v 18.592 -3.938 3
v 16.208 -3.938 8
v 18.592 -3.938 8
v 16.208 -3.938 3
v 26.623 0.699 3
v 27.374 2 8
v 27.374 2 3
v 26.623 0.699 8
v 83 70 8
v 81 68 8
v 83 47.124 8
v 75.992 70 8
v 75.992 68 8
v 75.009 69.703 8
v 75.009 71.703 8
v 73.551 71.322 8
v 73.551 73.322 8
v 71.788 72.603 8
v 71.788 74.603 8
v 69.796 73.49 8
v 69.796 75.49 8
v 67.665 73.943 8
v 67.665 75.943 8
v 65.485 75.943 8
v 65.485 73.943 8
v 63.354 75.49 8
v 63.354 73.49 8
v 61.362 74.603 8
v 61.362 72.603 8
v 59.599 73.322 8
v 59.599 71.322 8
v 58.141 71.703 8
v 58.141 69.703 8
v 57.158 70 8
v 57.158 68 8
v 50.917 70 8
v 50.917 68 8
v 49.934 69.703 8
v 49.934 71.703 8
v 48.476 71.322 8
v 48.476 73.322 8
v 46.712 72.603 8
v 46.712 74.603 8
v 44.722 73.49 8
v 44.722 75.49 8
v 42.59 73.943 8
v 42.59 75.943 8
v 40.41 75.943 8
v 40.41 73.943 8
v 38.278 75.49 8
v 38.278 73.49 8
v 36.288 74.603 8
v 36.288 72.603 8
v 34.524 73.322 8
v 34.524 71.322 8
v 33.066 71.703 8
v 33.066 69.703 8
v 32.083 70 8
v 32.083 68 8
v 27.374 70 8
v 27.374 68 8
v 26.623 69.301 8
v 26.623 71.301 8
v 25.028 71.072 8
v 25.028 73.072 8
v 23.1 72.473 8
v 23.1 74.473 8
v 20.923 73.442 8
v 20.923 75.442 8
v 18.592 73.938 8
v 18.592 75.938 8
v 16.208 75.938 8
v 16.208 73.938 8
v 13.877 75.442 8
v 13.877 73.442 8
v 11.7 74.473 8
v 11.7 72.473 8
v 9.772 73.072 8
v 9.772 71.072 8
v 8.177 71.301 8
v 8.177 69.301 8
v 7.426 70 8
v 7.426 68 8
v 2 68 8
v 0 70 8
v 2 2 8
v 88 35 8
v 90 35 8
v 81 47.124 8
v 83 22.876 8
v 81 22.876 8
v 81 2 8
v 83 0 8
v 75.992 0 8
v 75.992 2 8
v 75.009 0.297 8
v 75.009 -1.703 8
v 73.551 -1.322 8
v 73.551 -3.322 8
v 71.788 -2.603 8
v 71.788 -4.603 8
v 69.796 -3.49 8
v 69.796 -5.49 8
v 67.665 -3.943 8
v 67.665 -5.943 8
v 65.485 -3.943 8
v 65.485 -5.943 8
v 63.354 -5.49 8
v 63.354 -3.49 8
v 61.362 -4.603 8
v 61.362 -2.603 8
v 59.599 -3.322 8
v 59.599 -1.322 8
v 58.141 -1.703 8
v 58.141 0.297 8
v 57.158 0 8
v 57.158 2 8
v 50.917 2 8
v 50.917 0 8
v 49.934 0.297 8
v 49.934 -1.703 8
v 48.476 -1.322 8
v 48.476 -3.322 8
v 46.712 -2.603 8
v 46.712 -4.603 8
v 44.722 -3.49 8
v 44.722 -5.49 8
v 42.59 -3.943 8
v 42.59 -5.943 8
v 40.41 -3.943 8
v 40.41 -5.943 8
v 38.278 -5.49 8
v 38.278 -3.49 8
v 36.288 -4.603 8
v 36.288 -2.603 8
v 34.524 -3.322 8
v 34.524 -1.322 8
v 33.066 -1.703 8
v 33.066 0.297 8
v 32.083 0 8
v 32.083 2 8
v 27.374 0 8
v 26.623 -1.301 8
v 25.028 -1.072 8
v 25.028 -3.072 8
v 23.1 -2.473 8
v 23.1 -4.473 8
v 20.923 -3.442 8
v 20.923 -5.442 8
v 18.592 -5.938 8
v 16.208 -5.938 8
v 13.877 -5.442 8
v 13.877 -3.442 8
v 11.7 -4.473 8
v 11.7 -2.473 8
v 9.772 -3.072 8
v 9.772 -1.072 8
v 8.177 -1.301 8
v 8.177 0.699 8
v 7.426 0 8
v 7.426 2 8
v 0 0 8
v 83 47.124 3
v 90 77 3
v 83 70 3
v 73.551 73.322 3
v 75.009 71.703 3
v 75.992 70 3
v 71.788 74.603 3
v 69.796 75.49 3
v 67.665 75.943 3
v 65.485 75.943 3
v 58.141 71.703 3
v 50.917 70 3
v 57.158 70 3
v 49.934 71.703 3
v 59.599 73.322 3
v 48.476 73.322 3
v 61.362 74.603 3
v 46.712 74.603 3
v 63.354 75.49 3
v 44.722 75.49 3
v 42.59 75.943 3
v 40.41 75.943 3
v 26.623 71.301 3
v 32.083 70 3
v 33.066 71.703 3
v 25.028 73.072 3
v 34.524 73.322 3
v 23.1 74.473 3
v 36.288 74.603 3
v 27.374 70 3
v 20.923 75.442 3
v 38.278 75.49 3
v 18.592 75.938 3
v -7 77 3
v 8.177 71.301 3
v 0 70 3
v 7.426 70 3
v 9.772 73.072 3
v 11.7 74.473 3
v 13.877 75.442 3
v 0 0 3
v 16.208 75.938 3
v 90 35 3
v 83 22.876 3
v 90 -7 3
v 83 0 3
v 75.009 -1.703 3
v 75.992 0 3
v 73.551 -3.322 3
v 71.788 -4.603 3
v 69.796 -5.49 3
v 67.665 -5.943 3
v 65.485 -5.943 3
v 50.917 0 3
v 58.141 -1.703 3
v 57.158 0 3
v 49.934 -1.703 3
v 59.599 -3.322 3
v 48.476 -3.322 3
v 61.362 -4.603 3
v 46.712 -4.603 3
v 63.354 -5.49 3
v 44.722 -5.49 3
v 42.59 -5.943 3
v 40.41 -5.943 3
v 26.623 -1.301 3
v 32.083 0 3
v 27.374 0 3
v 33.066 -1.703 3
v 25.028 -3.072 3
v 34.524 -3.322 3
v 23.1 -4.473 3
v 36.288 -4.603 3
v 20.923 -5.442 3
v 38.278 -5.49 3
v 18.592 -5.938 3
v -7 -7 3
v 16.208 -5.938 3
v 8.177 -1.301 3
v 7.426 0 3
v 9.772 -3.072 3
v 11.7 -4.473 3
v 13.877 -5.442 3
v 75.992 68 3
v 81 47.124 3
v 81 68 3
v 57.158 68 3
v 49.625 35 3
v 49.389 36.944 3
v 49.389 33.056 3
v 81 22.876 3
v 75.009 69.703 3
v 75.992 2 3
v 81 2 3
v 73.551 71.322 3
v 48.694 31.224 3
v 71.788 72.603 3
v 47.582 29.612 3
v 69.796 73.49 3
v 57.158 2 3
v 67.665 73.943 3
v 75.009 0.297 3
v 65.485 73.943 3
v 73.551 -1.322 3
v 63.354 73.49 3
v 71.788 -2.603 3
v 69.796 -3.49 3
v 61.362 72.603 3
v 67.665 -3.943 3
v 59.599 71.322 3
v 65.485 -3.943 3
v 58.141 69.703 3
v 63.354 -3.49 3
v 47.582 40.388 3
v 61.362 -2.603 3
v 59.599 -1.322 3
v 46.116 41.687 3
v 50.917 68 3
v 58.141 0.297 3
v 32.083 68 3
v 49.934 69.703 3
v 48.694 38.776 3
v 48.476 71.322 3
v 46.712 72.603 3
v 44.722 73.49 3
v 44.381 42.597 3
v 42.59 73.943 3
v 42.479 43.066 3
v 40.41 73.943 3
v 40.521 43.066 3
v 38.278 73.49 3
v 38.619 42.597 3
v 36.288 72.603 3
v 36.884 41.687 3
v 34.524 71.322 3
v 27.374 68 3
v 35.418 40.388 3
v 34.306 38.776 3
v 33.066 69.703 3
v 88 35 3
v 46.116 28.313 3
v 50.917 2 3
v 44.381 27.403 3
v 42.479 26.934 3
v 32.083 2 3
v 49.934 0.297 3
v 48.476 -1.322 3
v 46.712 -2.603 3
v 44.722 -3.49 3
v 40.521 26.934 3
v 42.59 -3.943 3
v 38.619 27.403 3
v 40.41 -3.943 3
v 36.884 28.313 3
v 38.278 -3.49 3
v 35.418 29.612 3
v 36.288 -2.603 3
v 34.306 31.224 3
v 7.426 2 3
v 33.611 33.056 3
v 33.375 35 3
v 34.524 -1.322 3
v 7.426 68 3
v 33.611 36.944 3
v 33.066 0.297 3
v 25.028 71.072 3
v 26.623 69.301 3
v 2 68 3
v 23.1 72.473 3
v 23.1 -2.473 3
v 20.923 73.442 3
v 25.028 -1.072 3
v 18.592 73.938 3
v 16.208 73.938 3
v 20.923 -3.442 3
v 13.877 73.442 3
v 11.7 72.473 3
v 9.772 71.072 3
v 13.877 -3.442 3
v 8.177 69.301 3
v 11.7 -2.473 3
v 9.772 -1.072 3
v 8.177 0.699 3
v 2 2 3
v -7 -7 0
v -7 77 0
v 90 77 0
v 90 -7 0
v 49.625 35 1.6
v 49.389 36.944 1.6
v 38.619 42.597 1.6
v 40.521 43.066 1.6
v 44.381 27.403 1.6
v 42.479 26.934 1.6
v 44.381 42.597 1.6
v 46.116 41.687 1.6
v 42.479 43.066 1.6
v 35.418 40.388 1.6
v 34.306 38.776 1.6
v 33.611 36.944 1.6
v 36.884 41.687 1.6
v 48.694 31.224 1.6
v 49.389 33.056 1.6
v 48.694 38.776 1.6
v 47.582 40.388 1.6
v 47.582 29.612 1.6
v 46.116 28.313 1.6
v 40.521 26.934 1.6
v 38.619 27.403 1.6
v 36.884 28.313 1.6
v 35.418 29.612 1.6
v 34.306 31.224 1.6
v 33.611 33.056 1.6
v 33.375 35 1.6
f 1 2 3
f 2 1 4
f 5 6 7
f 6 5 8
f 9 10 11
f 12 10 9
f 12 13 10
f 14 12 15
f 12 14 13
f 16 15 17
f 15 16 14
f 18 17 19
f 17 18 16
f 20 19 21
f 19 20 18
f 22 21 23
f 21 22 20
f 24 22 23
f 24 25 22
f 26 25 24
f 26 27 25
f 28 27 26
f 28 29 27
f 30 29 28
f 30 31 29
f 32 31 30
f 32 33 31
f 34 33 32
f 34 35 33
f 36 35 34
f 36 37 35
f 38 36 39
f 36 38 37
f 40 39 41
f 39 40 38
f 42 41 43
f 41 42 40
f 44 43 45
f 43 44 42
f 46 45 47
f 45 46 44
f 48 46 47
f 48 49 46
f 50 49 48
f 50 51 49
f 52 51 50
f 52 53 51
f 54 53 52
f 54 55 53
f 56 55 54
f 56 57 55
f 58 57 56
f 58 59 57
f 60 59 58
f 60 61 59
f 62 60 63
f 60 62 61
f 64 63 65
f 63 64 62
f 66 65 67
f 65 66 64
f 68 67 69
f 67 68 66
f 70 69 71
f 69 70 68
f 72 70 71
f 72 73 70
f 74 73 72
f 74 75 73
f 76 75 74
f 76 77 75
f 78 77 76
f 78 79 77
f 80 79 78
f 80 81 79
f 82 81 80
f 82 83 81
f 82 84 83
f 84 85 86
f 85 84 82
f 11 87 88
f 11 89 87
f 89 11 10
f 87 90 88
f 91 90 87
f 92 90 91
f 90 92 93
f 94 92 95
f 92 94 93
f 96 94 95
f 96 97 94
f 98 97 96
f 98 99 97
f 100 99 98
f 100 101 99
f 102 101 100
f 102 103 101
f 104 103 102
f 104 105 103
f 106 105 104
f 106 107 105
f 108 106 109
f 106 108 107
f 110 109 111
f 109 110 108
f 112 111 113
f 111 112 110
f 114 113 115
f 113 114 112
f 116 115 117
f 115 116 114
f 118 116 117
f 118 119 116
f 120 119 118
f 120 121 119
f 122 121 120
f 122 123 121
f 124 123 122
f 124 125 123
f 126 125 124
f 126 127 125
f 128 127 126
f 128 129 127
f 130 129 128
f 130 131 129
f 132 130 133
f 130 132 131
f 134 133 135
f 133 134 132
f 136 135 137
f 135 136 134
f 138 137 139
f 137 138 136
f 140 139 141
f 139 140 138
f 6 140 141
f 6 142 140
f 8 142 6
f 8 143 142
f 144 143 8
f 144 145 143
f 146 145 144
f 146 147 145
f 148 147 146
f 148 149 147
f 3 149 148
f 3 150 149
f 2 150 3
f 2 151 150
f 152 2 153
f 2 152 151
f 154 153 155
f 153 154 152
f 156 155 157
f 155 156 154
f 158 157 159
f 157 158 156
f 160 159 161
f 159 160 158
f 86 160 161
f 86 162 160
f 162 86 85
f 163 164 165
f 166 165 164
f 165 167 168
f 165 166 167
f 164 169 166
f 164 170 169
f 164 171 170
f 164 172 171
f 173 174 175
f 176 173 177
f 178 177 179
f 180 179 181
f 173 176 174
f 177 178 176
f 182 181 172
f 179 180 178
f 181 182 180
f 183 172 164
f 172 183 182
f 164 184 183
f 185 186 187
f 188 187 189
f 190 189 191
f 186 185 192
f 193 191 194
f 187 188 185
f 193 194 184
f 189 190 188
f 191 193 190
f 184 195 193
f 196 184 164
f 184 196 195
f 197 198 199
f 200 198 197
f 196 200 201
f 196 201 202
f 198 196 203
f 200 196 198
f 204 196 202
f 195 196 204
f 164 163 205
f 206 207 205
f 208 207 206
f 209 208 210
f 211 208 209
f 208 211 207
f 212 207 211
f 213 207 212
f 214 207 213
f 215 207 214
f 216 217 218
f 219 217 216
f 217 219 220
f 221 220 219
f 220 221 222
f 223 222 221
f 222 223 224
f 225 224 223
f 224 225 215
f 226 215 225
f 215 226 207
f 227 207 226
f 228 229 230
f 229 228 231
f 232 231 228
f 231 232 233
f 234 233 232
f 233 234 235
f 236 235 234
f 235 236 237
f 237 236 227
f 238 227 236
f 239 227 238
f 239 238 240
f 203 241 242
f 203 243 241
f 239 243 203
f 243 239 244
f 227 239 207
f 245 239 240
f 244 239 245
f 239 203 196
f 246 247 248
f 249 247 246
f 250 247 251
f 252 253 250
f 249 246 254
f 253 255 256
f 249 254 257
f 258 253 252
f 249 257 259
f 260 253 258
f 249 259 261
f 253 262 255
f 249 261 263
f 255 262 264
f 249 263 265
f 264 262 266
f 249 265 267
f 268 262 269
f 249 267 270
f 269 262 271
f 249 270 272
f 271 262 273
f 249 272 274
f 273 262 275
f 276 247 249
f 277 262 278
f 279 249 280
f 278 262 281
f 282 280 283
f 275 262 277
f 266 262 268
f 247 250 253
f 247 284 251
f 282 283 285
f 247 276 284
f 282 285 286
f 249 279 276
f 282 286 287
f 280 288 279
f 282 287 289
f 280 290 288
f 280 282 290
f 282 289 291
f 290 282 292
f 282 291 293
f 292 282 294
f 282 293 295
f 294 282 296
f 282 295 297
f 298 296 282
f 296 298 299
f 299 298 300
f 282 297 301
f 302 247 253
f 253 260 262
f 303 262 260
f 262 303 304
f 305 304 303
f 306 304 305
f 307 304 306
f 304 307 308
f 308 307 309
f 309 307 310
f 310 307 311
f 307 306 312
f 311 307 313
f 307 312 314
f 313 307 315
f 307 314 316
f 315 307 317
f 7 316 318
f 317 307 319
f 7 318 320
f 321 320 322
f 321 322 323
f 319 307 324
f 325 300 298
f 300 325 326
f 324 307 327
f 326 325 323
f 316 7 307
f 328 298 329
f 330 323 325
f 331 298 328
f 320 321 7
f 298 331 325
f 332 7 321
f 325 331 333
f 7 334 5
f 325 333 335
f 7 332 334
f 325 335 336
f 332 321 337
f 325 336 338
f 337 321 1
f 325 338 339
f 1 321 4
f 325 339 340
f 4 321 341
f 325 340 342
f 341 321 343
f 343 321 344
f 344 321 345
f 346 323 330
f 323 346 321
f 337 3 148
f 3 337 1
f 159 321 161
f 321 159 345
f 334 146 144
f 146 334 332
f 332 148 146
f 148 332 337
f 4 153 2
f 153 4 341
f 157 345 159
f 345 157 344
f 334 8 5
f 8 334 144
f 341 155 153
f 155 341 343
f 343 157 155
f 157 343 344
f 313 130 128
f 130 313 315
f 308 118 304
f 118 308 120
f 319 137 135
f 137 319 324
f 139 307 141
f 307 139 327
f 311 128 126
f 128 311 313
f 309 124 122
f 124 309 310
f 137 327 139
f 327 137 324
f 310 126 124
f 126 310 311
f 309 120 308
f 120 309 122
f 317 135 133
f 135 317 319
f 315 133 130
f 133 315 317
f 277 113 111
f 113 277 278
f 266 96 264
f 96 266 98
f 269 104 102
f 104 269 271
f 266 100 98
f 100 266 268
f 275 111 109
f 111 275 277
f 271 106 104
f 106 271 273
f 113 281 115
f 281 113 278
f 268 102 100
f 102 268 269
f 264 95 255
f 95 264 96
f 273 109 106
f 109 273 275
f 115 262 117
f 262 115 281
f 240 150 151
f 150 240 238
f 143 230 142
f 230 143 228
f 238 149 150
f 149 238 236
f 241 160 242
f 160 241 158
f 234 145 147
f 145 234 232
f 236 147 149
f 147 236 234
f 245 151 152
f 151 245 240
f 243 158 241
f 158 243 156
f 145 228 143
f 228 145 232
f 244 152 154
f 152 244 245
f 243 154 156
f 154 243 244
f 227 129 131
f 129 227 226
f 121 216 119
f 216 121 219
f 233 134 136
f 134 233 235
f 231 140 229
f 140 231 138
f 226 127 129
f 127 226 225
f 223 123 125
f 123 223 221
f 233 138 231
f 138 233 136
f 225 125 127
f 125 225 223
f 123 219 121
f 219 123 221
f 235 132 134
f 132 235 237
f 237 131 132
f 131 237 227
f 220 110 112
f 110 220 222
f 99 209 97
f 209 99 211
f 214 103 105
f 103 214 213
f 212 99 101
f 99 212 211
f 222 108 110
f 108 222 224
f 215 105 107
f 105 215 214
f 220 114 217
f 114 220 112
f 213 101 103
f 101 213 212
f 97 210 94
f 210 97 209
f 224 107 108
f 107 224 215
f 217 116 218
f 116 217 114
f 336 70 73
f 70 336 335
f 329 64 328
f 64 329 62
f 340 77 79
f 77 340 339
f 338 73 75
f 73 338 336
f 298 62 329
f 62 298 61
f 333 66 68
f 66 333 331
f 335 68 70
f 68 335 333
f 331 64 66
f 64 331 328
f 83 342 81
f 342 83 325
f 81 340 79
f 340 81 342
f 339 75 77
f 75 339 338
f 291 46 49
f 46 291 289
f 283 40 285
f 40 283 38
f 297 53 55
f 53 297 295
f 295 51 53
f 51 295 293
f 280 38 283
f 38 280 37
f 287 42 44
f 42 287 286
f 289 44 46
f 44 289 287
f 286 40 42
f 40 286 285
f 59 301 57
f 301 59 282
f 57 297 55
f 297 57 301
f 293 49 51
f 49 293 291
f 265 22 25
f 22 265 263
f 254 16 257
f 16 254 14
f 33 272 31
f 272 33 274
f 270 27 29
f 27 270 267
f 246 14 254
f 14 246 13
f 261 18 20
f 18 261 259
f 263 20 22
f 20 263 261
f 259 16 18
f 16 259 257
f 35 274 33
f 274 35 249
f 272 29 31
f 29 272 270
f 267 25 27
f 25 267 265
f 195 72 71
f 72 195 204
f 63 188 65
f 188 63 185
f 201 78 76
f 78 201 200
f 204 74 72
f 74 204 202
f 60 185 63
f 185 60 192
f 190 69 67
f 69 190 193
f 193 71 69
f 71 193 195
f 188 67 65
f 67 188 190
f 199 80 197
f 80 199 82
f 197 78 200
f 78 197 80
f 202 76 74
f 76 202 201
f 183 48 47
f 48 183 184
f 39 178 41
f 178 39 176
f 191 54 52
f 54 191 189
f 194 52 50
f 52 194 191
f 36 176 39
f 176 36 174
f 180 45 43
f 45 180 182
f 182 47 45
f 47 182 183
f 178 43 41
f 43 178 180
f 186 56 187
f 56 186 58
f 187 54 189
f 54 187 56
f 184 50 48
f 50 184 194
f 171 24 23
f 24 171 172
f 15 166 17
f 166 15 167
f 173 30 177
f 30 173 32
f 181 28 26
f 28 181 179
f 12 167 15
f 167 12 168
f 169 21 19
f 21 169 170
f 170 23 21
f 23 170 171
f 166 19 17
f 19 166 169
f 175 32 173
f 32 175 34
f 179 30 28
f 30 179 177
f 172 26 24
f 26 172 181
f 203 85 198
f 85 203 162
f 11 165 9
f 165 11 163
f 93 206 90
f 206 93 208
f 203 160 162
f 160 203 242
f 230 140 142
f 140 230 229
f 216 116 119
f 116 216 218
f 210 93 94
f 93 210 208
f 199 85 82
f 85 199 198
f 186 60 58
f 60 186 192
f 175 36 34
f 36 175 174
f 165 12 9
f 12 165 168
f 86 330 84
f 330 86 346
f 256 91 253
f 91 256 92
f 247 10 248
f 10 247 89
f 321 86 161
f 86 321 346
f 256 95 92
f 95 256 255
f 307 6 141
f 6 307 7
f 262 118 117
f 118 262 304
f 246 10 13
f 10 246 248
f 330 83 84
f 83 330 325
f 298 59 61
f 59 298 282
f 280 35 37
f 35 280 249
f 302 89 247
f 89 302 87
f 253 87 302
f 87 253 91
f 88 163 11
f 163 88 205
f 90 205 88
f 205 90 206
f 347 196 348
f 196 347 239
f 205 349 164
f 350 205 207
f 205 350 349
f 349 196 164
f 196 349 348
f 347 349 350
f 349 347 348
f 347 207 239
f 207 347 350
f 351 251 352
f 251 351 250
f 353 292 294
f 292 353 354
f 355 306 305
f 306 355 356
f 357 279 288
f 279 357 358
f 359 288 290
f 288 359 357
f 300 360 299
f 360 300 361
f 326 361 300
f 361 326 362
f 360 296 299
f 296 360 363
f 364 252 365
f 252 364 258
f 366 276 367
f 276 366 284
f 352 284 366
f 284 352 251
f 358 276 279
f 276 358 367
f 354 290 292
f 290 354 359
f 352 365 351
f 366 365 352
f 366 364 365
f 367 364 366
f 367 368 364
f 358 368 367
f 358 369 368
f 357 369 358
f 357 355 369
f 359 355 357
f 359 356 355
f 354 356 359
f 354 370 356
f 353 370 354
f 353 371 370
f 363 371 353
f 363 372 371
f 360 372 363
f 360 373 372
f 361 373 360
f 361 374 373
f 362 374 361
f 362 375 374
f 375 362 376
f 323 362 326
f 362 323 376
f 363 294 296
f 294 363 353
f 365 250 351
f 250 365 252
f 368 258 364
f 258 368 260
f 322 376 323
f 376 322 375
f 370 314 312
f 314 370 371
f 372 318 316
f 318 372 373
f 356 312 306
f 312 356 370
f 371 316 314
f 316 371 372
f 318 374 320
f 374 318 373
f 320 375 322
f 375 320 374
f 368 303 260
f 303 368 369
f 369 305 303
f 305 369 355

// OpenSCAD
length = 78;
width = 65;
height = 3;
rimHeight = 5;
rimThickness = 2;
notchLength = 25;
//Based on washer size:
washerDiameter = 16.25;
washerHeight = 1.4;
rimPadding = 1;
totalHeight = height + rimHeight;

totalLength = length + rimThickness * 2 + rimPadding;
totalWidth = width + rimThickness * 2 + rimPadding;
extraLidForCircles = 7;

minorSecretTokenDiameter = 20.85;
minorSecretTokenOffset = 4;

majorSecretTokenDiameter = 22.8;
majorSecretTokenOffset = 4;

artifactTokenDiameter = 33;
artifactTokenOffset = 5;

union()
{
    difference() {
        translate([-extraLidForCircles, -extraLidForCircles, 0])
            cube([totalLength + 2 * extraLidForCircles, totalWidth + 2 * extraLidForCircles, height]);
        translate([totalLength/2, totalWidth/2, height - washerHeight])
            cylinder(washerHeight, d=washerDiameter);
    }
    
    difference() {
        translate([0, 0, height])
            cube([totalLength, totalWidth, rimHeight]);
        translate([rimThickness, rimThickness, height])
            cube([length + rimPadding, width + rimPadding, rimHeight]);
        RightLengthCircles();
        LeftLengthCircles();
        WidthCircles();
    }
    
    difference(){
        union()
        {
            translate([0, -rimThickness, 0])
                LeftLengthCircles();
            translate([0, rimThickness, 0])
                RightLengthCircles();
            translate([rimThickness, 0, 0])
                WidthCircles();
        }
        translate([0, 0, height])
            cube([totalLength, totalWidth, rimHeight]);
        RightLengthCircles();
        LeftLengthCircles();
        WidthCircles();
    }
}


module LeftLengthCircles()
{
    spaceBetweenCircles = 3;
    translate([majorSecretTokenDiameter/2 + spaceBetweenCircles + rimThickness + rimPadding, majorSecretTokenDiameter/2 - majorSecretTokenOffset, height])
        cylinder(rimHeight, d=majorSecretTokenDiameter);

    translate([totalLength/2, minorSecretTokenDiameter/2 - minorSecretTokenOffset, height ])
        cylinder(rimHeight, d=minorSecretTokenDiameter);
    
    translate([totalLength - (minorSecretTokenDiameter/2 + spaceBetweenCircles + rimThickness + rimPadding), minorSecretTokenDiameter/2 - minorSecretTokenOffset, height])
        cylinder(rimHeight, d=minorSecretTokenDiameter);
}

module RightLengthCircles()
{
    spaceBetweenCircles = 3;
    translate([majorSecretTokenDiameter/2 + spaceBetweenCircles + rimThickness + rimPadding, totalWidth - (majorSecretTokenDiameter/2 - majorSecretTokenOffset), height])
        cylinder(rimHeight, d=majorSecretTokenDiameter);

    translate([totalLength/2, totalWidth - (minorSecretTokenDiameter/2 - minorSecretTokenOffset), height ])
        cylinder(rimHeight, d=minorSecretTokenDiameter);
    
    translate([totalLength - (minorSecretTokenDiameter/2 + spaceBetweenCircles + rimThickness + rimPadding), totalWidth - (minorSecretTokenDiameter/2 - minorSecretTokenOffset), height])
        cylinder(rimHeight, d=minorSecretTokenDiameter);
}

module WidthCircles()
{
//    spaceBetweenCircles = 3;
//    
//    translate([reagentTokenDiameter/2 - reagentTokenOffset, totalWidth/2, height])
//        cylinder(rimHeight, d=reagentTokenDiameter);
    
    translate([totalLength - (artifactTokenDiameter/2 - artifactTokenOffset), totalWidth/2, height])
        cylinder(rimHeight, d=artifactTokenDiameter, $fn=6);
}

//spaceBetweenCircles = 3;
//translate([totalLength - (minorSecretTokenDiameter/2 + spaceBetweenCircles + rimThickness + rimPadding), totalWidth - (minorSecretTokenDiameter/2 - minorSecretTokenOffset), height])
//        cylinder(rimHeight, d=minorSecretTokenDiameter);
//translate([totalLength - (artifactTokenDiameter/2 - artifactTokenOffset), totalWidth/2, height])
//        cylinder(rimHeight, d=artifactTokenDiameter, $fn=6);
